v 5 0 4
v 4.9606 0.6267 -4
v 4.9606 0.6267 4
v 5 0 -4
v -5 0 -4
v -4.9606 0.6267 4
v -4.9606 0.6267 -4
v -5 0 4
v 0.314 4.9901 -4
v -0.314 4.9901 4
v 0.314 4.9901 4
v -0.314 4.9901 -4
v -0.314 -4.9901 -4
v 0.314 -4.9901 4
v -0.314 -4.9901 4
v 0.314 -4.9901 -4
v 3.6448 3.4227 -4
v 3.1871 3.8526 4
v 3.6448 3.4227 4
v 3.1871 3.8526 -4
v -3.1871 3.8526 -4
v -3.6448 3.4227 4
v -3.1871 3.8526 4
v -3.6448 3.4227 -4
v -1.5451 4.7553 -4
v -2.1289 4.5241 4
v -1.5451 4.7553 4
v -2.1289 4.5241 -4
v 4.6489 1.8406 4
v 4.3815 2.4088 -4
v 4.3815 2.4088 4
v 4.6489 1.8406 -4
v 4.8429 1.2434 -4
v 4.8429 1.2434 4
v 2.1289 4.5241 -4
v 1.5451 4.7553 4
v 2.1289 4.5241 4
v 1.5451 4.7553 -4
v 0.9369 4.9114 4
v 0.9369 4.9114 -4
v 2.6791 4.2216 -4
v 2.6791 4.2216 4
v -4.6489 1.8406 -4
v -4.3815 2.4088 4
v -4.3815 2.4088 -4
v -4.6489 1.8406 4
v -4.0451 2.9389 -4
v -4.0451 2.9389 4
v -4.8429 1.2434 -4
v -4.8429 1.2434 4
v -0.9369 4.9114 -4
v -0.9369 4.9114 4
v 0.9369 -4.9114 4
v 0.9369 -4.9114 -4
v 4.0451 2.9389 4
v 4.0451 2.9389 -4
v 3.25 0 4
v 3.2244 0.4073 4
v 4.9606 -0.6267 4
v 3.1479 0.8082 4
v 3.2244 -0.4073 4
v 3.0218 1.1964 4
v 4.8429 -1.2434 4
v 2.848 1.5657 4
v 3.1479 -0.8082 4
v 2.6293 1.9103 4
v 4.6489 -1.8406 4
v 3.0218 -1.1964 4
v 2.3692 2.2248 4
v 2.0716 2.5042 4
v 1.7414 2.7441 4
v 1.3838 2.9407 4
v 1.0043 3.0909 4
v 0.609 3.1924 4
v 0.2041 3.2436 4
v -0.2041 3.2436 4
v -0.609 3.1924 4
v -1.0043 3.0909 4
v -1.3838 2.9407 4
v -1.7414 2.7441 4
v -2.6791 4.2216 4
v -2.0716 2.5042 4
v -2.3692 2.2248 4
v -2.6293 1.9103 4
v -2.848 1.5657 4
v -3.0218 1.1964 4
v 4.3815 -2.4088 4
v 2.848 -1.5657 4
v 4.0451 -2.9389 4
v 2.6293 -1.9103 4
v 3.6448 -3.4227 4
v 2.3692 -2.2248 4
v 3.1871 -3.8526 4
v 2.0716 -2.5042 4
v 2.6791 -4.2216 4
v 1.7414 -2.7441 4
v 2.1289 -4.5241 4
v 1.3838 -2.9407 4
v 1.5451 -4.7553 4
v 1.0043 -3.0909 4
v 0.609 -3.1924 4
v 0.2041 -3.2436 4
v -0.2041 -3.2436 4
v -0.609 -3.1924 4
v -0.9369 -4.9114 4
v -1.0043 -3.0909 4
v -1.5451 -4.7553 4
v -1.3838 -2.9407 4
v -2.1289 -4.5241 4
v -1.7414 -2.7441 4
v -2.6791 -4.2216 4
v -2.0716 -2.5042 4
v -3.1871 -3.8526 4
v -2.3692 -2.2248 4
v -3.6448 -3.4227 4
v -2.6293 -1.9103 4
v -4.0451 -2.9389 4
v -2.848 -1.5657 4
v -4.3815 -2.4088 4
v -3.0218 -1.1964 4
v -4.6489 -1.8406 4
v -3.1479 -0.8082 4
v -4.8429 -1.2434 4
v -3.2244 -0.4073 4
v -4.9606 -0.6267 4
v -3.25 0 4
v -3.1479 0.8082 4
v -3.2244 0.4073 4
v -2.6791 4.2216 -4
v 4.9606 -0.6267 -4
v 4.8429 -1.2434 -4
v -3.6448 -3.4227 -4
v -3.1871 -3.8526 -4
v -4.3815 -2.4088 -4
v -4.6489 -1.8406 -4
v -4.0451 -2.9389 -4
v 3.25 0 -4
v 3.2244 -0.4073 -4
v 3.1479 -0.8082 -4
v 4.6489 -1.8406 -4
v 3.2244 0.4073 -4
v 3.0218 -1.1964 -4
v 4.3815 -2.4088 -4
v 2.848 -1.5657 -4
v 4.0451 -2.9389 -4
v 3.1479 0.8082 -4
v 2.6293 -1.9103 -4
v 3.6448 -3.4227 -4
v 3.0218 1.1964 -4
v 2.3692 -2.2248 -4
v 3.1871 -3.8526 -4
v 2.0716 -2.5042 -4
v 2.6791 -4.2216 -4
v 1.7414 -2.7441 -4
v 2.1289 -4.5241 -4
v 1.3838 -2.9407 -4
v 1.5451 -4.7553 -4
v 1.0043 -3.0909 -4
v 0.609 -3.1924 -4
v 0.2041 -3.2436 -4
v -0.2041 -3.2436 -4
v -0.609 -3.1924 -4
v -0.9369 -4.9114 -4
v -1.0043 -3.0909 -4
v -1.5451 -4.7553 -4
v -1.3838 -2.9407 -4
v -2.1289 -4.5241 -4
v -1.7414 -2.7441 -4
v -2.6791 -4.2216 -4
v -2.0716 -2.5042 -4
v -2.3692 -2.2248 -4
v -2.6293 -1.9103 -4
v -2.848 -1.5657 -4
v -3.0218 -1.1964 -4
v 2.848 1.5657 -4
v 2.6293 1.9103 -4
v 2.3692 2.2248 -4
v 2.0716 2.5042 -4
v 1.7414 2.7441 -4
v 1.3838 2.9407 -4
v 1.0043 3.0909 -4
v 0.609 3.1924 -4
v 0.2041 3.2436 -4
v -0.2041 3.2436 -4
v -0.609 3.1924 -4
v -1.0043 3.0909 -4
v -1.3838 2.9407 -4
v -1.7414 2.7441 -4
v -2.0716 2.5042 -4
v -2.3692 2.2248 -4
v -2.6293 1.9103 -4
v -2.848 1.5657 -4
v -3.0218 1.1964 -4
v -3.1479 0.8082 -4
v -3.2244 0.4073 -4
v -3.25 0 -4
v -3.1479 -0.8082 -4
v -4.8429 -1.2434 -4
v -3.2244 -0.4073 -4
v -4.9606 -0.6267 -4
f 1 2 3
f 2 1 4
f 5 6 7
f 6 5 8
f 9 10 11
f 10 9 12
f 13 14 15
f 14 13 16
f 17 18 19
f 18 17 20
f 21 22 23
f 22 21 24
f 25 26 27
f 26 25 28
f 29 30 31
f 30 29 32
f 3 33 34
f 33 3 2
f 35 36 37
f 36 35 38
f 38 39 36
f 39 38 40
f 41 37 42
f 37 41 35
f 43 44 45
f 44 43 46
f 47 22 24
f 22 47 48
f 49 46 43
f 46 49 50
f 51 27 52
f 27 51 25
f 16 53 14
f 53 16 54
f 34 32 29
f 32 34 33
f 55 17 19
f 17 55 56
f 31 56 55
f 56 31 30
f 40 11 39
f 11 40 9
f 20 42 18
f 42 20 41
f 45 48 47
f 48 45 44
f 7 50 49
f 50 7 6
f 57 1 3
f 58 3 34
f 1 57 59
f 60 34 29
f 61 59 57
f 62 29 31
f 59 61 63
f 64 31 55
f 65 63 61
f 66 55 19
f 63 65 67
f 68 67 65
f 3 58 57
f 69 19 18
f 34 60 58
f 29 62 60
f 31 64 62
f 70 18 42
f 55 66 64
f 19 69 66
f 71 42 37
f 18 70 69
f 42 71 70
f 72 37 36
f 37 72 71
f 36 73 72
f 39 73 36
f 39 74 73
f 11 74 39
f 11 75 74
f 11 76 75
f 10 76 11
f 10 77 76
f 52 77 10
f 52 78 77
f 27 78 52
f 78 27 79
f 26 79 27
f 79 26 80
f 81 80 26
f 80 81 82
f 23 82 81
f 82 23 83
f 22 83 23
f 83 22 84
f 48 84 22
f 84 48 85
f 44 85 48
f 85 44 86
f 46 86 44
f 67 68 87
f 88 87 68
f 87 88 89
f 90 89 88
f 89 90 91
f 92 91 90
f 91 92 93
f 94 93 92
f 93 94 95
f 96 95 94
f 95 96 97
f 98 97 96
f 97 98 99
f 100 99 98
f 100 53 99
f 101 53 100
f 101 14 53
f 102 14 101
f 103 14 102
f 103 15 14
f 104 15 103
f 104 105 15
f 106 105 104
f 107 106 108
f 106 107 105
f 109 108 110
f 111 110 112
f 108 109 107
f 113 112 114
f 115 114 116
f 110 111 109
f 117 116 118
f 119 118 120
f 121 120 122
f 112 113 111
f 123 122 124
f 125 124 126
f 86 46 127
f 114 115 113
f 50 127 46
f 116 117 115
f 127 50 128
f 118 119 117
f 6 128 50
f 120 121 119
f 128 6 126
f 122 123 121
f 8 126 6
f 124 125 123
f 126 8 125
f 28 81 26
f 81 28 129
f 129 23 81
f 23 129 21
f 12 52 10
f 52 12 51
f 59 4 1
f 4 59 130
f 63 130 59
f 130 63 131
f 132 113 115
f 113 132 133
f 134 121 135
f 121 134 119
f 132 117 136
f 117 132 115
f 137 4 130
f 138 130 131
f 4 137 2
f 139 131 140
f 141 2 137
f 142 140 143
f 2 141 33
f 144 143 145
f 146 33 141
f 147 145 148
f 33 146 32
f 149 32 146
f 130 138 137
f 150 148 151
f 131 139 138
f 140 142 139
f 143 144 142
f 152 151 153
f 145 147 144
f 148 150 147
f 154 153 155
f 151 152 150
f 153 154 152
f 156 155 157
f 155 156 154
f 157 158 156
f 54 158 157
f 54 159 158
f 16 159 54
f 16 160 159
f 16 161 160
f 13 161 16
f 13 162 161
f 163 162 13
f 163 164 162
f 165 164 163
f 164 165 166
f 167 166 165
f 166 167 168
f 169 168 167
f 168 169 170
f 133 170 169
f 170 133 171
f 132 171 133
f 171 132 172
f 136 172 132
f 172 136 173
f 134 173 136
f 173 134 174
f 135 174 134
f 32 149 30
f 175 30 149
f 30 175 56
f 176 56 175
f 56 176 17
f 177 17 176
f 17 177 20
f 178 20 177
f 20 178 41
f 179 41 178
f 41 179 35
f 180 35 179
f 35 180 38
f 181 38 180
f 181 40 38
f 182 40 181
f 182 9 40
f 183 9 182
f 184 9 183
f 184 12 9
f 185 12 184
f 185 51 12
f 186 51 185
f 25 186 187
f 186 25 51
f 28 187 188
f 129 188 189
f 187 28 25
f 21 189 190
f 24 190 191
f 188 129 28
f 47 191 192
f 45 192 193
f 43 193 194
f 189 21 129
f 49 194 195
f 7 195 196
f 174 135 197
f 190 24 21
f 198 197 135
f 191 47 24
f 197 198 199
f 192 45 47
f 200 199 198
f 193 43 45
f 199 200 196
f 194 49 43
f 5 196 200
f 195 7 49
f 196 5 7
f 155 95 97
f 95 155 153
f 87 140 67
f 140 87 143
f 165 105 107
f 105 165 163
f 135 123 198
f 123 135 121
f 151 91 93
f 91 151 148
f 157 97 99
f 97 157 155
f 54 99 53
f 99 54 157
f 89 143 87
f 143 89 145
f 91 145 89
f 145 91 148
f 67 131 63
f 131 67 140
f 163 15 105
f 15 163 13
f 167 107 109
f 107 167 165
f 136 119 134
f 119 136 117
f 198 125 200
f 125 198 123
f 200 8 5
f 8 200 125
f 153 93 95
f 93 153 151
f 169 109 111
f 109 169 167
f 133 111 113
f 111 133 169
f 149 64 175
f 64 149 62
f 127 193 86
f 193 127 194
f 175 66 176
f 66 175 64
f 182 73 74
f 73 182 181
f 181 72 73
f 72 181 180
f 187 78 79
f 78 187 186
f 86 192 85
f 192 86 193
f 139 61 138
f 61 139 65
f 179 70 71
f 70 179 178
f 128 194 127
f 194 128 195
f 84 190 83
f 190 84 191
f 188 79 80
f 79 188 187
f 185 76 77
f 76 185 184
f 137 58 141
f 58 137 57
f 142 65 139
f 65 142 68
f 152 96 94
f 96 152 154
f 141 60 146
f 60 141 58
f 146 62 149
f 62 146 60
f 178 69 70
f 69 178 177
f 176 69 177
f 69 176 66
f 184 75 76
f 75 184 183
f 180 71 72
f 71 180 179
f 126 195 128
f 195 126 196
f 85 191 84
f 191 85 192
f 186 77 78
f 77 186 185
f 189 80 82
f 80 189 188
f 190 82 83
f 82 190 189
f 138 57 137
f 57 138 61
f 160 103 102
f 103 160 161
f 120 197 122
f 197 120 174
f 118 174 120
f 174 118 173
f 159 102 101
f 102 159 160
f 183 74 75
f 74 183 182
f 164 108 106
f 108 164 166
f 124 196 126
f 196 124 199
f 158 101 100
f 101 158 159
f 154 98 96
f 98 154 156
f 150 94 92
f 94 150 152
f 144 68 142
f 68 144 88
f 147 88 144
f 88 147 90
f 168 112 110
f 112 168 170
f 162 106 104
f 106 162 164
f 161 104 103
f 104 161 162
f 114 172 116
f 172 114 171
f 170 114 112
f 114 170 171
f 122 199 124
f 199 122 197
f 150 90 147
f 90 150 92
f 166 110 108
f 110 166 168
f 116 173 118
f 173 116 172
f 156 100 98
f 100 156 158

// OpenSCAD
$fn = 50;


difference() {
	union() {
		translate(v = [0, 0, -4.0000000000]) {
			cylinder(h = 8, r = 5.0000000000);
		}
	}
	union() {
		translate(v = [0, 0, -100.0000000000]) {
			cylinder(h = 200, r = 3.2500000000);
		}
	}
}
